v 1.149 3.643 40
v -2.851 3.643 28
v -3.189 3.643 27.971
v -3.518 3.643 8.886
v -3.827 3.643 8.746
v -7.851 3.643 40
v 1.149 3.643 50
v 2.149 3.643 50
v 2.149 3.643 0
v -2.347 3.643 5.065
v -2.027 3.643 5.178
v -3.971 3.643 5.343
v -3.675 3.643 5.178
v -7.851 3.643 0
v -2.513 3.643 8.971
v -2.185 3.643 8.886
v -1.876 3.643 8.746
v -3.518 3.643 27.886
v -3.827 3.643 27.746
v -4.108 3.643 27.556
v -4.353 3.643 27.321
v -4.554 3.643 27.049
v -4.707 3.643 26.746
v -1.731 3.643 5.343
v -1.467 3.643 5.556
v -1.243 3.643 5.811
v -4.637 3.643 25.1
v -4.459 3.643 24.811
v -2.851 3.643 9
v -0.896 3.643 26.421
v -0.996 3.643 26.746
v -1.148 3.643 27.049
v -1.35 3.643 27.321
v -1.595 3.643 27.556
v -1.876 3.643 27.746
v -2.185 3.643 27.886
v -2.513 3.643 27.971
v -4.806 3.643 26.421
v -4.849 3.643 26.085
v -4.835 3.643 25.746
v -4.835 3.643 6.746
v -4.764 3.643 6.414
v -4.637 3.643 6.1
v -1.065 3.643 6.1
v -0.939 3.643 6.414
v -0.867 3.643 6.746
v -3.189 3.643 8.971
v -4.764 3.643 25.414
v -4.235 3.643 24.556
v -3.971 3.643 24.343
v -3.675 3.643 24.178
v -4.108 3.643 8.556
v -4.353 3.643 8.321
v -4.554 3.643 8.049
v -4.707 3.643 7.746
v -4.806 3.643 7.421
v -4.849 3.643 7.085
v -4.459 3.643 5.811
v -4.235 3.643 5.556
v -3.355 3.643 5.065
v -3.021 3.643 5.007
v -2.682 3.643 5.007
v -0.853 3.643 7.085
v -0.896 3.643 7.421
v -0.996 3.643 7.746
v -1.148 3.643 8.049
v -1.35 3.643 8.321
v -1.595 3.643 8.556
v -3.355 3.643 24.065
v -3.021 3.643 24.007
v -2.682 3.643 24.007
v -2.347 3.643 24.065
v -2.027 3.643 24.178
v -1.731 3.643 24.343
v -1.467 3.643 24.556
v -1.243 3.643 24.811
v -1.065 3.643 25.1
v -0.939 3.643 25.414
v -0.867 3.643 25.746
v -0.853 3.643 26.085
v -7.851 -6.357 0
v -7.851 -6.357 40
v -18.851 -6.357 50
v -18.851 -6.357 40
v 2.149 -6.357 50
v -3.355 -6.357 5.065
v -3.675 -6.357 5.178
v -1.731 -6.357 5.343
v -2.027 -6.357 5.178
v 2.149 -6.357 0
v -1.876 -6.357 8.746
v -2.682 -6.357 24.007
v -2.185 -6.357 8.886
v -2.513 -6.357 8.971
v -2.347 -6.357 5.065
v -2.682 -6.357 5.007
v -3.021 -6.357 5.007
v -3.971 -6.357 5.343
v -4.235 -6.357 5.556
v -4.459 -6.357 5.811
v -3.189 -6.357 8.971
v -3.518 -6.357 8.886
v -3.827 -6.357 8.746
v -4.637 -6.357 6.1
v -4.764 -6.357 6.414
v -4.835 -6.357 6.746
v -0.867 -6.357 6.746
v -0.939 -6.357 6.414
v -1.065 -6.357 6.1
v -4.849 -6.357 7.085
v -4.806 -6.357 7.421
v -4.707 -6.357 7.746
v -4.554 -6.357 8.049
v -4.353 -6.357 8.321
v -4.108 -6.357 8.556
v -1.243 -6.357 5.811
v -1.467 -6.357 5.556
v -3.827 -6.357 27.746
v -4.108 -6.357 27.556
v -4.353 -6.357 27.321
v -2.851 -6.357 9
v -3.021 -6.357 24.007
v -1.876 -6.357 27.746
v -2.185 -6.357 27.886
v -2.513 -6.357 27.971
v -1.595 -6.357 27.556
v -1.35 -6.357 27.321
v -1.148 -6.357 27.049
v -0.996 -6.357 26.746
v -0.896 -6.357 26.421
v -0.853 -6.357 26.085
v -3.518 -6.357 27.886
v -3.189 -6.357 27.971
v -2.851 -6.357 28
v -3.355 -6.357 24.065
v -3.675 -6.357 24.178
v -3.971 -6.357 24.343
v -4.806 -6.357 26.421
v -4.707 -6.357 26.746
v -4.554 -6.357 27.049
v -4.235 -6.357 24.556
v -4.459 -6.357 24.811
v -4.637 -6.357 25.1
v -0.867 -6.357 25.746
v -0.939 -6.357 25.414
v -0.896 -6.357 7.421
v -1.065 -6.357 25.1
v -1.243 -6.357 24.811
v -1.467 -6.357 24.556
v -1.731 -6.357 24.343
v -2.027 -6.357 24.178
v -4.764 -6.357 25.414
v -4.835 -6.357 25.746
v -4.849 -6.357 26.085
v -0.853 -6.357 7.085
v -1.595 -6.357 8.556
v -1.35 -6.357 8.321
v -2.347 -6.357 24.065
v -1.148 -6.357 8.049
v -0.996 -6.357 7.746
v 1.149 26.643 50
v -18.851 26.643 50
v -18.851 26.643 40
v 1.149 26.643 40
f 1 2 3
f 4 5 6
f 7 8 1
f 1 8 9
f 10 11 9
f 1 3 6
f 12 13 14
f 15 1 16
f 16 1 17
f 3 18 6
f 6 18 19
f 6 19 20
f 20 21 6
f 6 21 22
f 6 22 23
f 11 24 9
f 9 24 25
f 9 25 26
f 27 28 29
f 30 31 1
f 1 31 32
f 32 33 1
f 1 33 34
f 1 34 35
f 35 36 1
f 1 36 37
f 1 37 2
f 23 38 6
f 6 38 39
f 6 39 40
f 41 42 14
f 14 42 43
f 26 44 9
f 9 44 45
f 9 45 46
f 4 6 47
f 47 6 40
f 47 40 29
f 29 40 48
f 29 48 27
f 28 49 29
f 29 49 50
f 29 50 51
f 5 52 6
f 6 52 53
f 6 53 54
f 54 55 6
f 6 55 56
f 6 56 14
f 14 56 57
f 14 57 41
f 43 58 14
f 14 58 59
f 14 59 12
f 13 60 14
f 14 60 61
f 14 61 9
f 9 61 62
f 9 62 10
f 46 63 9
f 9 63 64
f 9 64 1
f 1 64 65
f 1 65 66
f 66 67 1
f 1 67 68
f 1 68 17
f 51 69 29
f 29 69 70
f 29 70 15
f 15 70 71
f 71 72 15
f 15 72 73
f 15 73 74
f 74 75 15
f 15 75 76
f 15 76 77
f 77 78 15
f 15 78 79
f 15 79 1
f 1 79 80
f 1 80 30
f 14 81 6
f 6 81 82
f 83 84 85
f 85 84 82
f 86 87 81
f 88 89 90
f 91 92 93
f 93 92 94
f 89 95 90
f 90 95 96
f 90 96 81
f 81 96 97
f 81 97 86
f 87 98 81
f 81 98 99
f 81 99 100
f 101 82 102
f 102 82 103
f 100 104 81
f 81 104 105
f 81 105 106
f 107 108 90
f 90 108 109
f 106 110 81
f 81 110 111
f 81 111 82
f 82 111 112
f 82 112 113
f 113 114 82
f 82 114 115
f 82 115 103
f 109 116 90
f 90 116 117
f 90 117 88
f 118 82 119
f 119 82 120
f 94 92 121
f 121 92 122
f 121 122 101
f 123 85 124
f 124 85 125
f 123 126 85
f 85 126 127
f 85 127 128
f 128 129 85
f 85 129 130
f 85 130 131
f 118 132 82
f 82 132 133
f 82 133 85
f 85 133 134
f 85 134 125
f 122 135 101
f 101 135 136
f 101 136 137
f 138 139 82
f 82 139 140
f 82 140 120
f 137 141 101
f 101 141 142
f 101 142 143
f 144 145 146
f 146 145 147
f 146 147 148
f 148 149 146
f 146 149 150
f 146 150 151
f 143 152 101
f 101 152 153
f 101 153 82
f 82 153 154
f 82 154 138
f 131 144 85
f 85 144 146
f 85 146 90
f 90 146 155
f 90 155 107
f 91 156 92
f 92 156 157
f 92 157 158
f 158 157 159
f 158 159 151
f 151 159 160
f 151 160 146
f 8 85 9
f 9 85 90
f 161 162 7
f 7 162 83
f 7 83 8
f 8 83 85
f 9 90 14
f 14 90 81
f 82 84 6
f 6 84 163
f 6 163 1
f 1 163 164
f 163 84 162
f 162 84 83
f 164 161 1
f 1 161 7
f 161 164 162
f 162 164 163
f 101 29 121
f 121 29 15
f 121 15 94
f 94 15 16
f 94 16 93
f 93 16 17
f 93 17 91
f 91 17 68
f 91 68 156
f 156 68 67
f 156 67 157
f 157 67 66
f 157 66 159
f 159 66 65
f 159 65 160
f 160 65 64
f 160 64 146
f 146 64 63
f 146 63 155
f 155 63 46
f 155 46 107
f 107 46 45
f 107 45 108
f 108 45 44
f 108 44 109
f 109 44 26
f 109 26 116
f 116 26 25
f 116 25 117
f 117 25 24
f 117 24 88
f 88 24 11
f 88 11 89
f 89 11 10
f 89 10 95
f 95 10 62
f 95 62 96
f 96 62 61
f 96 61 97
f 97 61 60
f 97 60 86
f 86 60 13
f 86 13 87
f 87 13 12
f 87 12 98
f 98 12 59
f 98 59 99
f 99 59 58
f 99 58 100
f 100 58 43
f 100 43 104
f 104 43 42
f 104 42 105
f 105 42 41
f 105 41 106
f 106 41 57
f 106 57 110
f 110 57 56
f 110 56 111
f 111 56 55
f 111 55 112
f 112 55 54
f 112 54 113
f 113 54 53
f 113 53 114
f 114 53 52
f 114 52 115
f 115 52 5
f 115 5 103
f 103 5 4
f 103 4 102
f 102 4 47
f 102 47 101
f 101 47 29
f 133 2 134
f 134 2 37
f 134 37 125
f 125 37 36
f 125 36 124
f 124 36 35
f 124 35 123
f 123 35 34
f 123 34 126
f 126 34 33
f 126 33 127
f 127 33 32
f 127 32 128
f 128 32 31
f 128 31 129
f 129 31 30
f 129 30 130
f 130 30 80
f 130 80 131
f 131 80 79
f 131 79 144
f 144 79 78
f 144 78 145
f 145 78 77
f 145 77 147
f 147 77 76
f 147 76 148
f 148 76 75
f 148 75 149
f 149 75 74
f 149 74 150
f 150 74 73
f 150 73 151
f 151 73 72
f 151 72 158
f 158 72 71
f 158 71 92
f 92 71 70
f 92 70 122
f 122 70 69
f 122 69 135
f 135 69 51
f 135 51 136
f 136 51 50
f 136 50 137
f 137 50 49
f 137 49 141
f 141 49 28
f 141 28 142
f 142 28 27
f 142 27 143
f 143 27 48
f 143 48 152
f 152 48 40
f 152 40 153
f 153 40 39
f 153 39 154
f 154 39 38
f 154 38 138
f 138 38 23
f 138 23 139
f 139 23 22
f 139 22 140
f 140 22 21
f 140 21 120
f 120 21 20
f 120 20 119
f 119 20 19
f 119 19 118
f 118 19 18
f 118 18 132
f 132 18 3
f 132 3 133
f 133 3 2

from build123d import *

# Parameters (mm, degrees)
SKETCH1_W           = 10
SKETCH1_H           = 10
BOSS_EXTRUDE1_DEPTH = 50
SKETCH3_W           = 10
SKETCH3_H           = 10
BOSS_EXTRUDE3_DEPTH = 11
SKETCH8_W           = 20
SKETCH8_H           = 10
BOSS_EXTRUDE4_DEPTH = 23
SKETCH9_R           = 2
CUT_EXTRUDE2_DEPTH  = 23
SKETCH9_4_R         = 2
CUT_EXTRUDE3_DEPTH  = 23


with BuildPart() as part:
    # Sketch1 → Boss-Extrude1 (new body)
    with BuildSketch(Plane.XY):
        with Locations((-2.851282988, -1.356707317)):
            Rectangle(SKETCH1_W, SKETCH1_H)
    extrude(amount=BOSS_EXTRUDE1_DEPTH)

    # Sketch3 → Boss-Extrude3 (add)
    with BuildSketch(Plane.ZY.offset(7.851282988)):
        with Locations((45, -1.356707317)):
            Rectangle(SKETCH3_W, SKETCH3_H)
    extrude(amount=BOSS_EXTRUDE3_DEPTH)

    # Sketch8 → Boss-Extrude4 (add)
    with BuildSketch(Plane(origin=(0, 3.643292683, 0), x_dir=(1, 0, 0), z_dir=(0, 1, 0))):
        with Locations((-8.851282988, -45)):
            Rectangle(SKETCH8_W, SKETCH8_H)
    extrude(amount=BOSS_EXTRUDE4_DEPTH)

    # Sketch9 → Cut-Extrude2 (cut)
    with BuildSketch(Plane(origin=(0, 3.643292683, 0), x_dir=(1, 0, 0), z_dir=(0, 1, 0))):
        with Locations((-2.851282988, -7)):
            Circle(SKETCH9_R)
    extrude(amount=-CUT_EXTRUDE2_DEPTH, mode=Mode.SUBTRACT)

    # Sketch9<4> → Cut-Extrude3 (cut)
    with BuildSketch(Plane(origin=(0, 3.643292683, 0), x_dir=(1, 0, 0), z_dir=(0, 1, 0))):
        with Locations((-2.851282988, -26)):
            Circle(SKETCH9_4_R)
    extrude(amount=-CUT_EXTRUDE3_DEPTH, mode=Mode.SUBTRACT)


solid = part.part
